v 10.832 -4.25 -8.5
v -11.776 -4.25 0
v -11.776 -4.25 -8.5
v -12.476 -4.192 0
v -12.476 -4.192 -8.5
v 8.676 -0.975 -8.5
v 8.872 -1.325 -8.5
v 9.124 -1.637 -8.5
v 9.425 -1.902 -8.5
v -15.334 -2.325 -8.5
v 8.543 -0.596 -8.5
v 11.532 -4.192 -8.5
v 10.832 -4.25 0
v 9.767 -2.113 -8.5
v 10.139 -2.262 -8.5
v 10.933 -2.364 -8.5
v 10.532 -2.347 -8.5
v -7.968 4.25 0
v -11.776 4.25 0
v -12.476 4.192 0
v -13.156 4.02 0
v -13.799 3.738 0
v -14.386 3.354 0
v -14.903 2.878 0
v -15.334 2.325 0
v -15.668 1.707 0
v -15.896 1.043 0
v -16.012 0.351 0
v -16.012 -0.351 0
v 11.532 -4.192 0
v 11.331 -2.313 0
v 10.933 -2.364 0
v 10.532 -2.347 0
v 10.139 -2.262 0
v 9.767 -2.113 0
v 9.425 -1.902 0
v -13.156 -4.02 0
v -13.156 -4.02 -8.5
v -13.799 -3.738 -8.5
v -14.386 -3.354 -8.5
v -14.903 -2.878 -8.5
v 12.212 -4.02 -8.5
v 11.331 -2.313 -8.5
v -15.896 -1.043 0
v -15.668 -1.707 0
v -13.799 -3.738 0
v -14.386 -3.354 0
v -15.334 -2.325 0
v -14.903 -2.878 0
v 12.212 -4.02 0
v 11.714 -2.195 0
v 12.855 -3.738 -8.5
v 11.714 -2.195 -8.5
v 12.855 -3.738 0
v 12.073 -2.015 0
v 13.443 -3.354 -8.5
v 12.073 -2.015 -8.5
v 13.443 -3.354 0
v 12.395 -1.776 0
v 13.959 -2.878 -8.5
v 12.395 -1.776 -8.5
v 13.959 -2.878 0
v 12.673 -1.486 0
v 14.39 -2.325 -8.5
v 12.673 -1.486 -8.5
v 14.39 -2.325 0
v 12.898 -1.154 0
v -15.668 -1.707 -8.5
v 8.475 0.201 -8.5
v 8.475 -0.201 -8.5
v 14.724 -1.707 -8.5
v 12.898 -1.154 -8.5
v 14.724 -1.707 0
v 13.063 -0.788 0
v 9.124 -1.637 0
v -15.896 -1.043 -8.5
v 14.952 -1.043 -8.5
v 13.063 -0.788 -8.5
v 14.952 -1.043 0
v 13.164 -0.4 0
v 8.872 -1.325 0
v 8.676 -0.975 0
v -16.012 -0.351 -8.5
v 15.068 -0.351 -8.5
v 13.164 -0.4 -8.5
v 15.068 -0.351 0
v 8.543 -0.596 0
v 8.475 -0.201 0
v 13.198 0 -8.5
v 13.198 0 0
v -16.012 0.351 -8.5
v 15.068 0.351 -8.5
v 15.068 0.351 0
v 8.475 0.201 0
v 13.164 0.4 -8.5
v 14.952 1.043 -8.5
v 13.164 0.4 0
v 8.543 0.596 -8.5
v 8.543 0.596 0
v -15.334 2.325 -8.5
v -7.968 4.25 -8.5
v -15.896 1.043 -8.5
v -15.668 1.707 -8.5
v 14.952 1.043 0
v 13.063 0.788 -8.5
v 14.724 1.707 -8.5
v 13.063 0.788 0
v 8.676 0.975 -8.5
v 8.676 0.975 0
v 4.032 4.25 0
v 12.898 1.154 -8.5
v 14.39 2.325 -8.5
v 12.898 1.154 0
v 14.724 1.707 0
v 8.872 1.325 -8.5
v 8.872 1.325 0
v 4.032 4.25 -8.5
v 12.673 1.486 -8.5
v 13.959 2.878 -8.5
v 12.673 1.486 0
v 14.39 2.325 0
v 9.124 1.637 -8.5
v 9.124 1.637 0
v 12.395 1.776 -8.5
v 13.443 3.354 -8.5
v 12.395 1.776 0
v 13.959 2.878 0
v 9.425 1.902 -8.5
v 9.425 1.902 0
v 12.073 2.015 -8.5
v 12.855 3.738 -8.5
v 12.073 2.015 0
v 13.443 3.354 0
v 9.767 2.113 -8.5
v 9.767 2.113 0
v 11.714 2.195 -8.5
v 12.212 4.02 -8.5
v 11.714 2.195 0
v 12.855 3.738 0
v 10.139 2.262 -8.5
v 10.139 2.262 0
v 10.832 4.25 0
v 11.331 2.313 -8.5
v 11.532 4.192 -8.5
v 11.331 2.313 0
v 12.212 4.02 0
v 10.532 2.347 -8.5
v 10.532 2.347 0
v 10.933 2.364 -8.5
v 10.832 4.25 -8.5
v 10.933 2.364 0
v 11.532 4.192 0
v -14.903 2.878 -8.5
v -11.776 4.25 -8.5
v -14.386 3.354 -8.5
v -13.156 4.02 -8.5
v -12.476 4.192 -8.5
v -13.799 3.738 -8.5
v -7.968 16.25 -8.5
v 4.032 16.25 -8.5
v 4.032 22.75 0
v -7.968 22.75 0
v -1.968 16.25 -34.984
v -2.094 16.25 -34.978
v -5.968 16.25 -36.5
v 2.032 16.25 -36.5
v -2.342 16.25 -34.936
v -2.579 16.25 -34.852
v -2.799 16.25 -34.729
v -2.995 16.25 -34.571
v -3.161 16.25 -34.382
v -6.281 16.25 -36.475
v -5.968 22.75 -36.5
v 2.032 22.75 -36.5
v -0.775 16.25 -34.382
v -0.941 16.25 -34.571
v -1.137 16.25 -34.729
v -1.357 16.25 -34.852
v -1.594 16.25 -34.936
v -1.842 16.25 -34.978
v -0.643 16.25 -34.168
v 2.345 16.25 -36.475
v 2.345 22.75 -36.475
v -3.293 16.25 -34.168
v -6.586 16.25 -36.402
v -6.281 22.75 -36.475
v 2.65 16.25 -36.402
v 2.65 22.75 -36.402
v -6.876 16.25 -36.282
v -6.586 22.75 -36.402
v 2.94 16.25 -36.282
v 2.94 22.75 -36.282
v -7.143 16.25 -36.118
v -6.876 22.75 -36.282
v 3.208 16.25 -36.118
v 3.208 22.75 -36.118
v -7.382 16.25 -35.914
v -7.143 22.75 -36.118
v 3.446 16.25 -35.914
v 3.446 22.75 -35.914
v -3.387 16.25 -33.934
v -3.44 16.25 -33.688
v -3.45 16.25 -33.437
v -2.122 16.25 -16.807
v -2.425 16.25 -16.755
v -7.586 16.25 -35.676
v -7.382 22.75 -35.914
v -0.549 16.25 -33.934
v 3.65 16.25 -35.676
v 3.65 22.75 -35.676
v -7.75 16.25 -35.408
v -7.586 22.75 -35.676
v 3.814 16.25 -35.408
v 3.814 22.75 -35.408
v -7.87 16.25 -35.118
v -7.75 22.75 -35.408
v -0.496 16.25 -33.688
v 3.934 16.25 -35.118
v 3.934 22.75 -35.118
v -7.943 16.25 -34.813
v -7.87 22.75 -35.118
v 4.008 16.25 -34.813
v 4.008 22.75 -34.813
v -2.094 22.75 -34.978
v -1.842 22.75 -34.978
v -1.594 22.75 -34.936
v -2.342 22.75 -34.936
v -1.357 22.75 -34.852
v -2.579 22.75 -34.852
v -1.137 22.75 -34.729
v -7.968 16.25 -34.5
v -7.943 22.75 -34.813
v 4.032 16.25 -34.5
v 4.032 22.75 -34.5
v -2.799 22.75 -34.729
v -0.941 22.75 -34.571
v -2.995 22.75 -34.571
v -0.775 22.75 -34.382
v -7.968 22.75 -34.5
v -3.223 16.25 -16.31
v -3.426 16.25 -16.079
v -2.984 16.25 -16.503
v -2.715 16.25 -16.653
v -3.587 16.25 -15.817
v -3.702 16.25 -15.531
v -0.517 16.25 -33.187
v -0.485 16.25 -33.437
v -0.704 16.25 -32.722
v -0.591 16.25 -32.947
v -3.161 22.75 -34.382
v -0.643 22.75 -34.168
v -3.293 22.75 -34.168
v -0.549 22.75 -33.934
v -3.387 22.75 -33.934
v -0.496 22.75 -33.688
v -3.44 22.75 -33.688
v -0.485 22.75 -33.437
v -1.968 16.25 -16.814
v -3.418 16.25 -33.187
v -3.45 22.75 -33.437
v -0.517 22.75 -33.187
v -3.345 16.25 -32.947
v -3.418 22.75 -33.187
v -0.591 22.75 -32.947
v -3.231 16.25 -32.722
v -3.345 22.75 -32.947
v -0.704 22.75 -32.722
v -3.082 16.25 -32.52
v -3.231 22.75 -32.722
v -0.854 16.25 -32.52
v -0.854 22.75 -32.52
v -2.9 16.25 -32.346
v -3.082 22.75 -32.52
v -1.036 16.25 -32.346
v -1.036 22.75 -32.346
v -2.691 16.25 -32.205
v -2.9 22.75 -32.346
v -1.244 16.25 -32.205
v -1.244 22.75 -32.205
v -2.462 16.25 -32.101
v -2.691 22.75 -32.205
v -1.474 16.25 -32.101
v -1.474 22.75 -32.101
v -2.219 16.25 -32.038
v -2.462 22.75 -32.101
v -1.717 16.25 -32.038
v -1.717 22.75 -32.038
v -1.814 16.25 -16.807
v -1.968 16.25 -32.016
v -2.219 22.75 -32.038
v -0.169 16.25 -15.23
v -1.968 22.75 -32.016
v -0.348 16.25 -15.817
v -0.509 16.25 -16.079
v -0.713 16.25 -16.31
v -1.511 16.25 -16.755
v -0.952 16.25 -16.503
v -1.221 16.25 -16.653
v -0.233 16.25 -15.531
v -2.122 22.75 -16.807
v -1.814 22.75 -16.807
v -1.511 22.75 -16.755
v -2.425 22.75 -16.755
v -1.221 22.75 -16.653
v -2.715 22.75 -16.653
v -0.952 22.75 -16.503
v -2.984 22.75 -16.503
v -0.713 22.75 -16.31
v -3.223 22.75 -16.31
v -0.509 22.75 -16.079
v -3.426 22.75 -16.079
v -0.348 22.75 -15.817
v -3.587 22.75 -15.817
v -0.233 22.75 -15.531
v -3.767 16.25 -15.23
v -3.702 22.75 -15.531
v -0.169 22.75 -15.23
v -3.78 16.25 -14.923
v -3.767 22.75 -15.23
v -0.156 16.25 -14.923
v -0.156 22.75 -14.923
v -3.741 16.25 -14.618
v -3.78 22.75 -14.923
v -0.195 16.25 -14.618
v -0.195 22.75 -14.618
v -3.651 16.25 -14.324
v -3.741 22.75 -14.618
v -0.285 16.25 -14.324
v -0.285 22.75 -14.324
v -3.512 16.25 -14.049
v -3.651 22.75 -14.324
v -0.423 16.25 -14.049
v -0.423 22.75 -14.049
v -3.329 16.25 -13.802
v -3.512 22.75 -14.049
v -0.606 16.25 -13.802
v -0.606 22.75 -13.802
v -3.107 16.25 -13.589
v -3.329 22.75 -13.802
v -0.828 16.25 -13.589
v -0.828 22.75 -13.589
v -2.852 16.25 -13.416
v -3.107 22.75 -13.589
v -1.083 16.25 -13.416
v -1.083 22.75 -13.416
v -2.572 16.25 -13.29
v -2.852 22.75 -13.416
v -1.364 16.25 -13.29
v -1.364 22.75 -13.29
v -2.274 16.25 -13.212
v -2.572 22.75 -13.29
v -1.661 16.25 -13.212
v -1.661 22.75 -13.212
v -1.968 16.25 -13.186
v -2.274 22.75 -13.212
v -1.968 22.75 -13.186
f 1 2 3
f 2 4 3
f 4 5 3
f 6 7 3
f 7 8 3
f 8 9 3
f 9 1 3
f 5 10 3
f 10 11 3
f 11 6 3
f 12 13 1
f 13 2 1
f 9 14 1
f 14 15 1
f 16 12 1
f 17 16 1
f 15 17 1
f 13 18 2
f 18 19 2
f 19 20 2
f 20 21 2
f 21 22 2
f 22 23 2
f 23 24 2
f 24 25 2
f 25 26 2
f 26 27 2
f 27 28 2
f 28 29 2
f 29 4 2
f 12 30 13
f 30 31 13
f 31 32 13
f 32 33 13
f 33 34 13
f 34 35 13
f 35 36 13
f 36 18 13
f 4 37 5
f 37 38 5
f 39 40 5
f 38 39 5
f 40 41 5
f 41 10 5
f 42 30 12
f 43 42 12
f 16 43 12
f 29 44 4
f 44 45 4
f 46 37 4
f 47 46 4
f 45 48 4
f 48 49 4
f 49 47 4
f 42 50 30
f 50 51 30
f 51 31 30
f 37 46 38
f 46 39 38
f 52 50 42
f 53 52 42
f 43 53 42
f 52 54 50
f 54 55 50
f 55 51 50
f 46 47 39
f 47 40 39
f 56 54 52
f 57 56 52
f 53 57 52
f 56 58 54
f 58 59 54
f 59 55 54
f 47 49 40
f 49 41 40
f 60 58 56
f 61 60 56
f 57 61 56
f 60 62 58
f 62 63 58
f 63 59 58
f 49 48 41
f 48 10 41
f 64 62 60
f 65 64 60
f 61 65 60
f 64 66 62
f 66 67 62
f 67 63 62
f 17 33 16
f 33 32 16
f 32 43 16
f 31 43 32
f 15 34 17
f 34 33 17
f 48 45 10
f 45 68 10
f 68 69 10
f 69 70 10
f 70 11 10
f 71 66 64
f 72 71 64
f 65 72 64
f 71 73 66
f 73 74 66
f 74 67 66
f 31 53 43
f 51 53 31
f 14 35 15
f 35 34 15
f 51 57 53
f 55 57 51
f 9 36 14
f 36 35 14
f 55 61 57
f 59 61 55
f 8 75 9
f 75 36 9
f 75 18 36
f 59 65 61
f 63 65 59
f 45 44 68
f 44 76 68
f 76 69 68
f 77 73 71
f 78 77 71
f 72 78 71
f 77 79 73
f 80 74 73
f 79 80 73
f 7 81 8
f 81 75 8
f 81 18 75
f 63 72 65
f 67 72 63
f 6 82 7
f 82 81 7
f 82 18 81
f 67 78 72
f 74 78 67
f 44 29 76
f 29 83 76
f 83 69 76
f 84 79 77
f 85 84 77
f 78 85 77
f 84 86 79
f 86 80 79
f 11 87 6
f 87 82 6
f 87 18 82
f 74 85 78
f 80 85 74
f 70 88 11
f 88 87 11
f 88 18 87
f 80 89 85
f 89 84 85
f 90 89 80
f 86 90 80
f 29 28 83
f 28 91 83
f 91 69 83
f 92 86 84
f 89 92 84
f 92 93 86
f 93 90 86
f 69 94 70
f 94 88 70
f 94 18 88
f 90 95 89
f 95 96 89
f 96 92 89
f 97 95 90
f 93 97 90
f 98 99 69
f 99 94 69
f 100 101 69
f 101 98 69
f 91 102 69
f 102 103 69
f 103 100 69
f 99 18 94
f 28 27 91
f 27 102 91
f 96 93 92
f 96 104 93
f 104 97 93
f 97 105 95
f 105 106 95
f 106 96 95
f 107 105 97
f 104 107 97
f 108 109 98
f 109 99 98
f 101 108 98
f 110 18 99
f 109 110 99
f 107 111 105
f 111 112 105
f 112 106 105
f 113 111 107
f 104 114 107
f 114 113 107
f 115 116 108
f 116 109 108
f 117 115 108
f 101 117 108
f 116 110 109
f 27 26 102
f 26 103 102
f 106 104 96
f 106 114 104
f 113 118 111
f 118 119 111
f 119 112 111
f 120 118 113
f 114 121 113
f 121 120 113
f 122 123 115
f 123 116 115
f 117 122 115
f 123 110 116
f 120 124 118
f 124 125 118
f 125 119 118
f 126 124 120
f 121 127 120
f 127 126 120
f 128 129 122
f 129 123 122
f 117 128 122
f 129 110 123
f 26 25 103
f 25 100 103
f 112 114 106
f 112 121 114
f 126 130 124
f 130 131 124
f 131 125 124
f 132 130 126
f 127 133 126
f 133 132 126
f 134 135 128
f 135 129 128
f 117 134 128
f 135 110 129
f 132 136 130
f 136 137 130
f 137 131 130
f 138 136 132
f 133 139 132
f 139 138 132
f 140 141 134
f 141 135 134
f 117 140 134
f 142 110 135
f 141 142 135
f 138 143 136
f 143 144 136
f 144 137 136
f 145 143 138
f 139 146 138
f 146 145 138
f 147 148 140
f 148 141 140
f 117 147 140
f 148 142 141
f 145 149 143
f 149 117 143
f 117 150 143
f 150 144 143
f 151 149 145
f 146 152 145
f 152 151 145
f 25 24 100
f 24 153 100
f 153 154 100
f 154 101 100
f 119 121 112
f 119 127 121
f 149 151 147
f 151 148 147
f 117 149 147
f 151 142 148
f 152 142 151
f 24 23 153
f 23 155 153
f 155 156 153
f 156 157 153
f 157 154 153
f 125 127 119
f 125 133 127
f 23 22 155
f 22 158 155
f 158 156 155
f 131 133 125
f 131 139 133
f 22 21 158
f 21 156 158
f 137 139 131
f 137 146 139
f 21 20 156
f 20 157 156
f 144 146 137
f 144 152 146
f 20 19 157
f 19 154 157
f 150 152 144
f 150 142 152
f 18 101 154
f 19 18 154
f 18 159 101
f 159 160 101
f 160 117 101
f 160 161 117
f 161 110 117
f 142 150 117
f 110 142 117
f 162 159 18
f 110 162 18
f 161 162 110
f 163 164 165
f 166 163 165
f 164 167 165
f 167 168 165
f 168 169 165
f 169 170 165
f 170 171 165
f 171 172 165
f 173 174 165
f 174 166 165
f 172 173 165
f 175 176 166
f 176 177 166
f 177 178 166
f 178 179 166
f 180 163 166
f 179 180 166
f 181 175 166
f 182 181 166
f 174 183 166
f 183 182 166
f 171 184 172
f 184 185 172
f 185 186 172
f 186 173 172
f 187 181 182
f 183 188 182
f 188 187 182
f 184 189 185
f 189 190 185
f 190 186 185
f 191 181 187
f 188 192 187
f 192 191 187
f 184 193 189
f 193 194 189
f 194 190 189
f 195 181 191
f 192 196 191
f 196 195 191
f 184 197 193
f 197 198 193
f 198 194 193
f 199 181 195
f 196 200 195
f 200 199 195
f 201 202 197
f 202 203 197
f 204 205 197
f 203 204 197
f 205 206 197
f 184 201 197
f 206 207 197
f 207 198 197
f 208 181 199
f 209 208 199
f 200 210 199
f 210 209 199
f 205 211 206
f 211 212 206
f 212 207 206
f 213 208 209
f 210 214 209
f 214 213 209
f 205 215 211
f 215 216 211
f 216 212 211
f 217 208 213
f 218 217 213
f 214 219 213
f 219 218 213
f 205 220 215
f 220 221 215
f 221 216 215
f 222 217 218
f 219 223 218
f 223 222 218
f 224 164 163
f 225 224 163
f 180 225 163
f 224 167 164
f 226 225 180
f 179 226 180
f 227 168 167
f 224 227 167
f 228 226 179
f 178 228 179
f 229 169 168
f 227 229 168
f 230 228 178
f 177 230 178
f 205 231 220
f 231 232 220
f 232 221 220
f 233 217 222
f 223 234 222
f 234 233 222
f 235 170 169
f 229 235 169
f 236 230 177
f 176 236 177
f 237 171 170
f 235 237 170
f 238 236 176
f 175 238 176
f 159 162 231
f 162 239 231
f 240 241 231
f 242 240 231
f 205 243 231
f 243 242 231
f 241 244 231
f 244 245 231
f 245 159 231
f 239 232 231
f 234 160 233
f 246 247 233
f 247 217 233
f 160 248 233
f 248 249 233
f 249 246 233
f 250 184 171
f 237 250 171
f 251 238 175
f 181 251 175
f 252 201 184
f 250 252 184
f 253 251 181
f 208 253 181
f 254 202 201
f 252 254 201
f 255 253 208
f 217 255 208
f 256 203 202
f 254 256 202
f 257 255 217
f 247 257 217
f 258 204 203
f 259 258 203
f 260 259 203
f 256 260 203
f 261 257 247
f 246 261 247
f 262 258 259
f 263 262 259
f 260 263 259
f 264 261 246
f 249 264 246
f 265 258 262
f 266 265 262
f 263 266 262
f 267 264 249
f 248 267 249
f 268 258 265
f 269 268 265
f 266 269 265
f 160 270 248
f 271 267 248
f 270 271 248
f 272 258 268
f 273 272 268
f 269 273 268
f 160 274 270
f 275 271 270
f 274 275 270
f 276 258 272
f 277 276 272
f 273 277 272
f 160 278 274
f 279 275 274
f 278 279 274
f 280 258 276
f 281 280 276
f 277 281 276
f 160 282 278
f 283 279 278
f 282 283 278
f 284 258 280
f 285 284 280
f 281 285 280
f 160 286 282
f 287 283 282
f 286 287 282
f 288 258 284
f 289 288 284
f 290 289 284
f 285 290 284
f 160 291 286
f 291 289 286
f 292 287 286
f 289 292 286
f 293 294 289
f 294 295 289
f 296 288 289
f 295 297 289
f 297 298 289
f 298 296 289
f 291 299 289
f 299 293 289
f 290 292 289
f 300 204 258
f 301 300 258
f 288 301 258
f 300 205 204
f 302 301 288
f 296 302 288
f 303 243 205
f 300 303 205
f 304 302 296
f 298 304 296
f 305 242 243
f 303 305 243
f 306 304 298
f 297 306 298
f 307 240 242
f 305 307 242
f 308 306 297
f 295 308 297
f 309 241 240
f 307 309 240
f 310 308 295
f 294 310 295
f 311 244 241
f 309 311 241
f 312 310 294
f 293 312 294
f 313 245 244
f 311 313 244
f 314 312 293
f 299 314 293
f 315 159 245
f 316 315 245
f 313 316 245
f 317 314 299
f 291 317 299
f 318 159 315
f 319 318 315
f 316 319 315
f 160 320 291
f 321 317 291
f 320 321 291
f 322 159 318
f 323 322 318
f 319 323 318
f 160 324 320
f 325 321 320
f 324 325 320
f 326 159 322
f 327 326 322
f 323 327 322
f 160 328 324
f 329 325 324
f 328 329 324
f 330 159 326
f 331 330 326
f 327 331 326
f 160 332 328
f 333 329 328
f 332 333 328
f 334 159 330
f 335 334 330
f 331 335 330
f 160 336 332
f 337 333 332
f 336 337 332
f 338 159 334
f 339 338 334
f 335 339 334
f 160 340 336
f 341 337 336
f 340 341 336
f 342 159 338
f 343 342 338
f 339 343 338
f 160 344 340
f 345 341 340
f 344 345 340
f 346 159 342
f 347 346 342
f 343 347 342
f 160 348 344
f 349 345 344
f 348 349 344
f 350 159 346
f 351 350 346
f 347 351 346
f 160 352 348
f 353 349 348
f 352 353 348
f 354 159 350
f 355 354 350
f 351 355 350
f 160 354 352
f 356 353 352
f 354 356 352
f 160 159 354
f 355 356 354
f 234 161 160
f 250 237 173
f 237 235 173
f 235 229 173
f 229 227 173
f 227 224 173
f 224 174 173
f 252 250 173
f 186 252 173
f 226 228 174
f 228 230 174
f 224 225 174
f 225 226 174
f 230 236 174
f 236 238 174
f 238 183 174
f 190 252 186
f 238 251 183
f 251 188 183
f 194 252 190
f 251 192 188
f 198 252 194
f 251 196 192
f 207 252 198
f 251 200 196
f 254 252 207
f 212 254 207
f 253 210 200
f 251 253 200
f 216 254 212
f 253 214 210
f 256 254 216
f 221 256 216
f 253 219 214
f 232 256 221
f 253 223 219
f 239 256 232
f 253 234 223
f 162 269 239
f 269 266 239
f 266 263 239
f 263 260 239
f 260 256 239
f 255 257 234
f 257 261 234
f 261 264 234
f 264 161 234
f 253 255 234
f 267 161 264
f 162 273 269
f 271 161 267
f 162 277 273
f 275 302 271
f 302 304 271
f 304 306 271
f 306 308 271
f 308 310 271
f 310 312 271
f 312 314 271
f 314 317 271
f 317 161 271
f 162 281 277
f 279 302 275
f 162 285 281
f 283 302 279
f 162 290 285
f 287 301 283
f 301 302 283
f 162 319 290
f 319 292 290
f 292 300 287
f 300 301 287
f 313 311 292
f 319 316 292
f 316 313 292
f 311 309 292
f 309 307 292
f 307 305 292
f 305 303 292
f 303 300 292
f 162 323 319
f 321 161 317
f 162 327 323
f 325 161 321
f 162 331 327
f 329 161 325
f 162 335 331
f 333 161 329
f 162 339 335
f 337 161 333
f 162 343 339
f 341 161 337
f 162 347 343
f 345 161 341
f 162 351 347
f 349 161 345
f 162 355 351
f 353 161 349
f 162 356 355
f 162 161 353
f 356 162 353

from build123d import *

# Parameters (mm, degrees)
SKETCH_1_R          = 2.365979381
EXTRUDE_1_DEPTH     = 8.5
SKETCH_3_W          = 12
SKETCH_3_H          = 6.5
EXTRUDE_3_DEPTH     = 36.5
SKETCH_4_R          = 1.483814058
SKETCH_4_R_2        = 1.813860949
CUT_EXTRUDE_1_DEPTH = 49.146499311
FILLET_1_R          = 2


with BuildPart() as part:
    # 草圖1 → 填料-伸長1 (new body)
    with BuildSketch(Plane.XY):
        with BuildLine():
            Line((10.832162564, -4.25), (-11.776084859, -4.25))
            ThreePointArc((-11.776084859, -4.25), (-16.026084859, 0), (-11.776084859, 4.25))
            Line((-11.776084859, 4.25), (-7.967837436, 4.25))
            Line((-7.967837436, 4.25), (-7.967837436, 16.25))
            Line((-7.967837436, 16.25), (4.032162564, 16.25))
            Line((4.032162564, 16.25), (4.032162564, 4.25))
            Line((4.032162564, 4.25), (10.832162564, 4.25))
            ThreePointArc((10.832162564, 4.25), (15.082162564, 0), (10.832162564, -4.25))
        make_face()
        with Locations((10.832162564, 0)):
            Circle(SKETCH_1_R, mode=Mode.SUBTRACT)
    extrude(amount=-EXTRUDE_1_DEPTH)

    # 草圖3 → 填料-伸長3 (add)
    with BuildSketch(Plane.XY):
        with Locations((-1.967837436, 19.5)):
            Rectangle(SKETCH_3_W, SKETCH_3_H)
    extrude(amount=-EXTRUDE_3_DEPTH)

    # 草圖4 → 除料-伸長1 (cut, through all)
    with BuildSketch(Plane(origin=(0, 22.75, 0), x_dir=(1, 0, 0), z_dir=(0, 1, 0))):
        with Locations(Location((-1.967837436, 33.5, 0), (0, 0, 270))):
            Circle(SKETCH_4_R)
        with Locations(Location((-1.967837436, 15, 0), (0, 0, 270))):
            Circle(SKETCH_4_R_2)
    extrude(amount=-CUT_EXTRUDE_1_DEPTH, mode=Mode.SUBTRACT)

    # 圓角1
    fillet_1_edges = [part.edges().sort_by_distance(p)[0] for p in [
        (-7.967837436, 19.5, -36.5),
        (4.032162564, 19.5, -36.5),
    ]]
    fillet(fillet_1_edges, radius=FILLET_1_R)


solid = part.part
